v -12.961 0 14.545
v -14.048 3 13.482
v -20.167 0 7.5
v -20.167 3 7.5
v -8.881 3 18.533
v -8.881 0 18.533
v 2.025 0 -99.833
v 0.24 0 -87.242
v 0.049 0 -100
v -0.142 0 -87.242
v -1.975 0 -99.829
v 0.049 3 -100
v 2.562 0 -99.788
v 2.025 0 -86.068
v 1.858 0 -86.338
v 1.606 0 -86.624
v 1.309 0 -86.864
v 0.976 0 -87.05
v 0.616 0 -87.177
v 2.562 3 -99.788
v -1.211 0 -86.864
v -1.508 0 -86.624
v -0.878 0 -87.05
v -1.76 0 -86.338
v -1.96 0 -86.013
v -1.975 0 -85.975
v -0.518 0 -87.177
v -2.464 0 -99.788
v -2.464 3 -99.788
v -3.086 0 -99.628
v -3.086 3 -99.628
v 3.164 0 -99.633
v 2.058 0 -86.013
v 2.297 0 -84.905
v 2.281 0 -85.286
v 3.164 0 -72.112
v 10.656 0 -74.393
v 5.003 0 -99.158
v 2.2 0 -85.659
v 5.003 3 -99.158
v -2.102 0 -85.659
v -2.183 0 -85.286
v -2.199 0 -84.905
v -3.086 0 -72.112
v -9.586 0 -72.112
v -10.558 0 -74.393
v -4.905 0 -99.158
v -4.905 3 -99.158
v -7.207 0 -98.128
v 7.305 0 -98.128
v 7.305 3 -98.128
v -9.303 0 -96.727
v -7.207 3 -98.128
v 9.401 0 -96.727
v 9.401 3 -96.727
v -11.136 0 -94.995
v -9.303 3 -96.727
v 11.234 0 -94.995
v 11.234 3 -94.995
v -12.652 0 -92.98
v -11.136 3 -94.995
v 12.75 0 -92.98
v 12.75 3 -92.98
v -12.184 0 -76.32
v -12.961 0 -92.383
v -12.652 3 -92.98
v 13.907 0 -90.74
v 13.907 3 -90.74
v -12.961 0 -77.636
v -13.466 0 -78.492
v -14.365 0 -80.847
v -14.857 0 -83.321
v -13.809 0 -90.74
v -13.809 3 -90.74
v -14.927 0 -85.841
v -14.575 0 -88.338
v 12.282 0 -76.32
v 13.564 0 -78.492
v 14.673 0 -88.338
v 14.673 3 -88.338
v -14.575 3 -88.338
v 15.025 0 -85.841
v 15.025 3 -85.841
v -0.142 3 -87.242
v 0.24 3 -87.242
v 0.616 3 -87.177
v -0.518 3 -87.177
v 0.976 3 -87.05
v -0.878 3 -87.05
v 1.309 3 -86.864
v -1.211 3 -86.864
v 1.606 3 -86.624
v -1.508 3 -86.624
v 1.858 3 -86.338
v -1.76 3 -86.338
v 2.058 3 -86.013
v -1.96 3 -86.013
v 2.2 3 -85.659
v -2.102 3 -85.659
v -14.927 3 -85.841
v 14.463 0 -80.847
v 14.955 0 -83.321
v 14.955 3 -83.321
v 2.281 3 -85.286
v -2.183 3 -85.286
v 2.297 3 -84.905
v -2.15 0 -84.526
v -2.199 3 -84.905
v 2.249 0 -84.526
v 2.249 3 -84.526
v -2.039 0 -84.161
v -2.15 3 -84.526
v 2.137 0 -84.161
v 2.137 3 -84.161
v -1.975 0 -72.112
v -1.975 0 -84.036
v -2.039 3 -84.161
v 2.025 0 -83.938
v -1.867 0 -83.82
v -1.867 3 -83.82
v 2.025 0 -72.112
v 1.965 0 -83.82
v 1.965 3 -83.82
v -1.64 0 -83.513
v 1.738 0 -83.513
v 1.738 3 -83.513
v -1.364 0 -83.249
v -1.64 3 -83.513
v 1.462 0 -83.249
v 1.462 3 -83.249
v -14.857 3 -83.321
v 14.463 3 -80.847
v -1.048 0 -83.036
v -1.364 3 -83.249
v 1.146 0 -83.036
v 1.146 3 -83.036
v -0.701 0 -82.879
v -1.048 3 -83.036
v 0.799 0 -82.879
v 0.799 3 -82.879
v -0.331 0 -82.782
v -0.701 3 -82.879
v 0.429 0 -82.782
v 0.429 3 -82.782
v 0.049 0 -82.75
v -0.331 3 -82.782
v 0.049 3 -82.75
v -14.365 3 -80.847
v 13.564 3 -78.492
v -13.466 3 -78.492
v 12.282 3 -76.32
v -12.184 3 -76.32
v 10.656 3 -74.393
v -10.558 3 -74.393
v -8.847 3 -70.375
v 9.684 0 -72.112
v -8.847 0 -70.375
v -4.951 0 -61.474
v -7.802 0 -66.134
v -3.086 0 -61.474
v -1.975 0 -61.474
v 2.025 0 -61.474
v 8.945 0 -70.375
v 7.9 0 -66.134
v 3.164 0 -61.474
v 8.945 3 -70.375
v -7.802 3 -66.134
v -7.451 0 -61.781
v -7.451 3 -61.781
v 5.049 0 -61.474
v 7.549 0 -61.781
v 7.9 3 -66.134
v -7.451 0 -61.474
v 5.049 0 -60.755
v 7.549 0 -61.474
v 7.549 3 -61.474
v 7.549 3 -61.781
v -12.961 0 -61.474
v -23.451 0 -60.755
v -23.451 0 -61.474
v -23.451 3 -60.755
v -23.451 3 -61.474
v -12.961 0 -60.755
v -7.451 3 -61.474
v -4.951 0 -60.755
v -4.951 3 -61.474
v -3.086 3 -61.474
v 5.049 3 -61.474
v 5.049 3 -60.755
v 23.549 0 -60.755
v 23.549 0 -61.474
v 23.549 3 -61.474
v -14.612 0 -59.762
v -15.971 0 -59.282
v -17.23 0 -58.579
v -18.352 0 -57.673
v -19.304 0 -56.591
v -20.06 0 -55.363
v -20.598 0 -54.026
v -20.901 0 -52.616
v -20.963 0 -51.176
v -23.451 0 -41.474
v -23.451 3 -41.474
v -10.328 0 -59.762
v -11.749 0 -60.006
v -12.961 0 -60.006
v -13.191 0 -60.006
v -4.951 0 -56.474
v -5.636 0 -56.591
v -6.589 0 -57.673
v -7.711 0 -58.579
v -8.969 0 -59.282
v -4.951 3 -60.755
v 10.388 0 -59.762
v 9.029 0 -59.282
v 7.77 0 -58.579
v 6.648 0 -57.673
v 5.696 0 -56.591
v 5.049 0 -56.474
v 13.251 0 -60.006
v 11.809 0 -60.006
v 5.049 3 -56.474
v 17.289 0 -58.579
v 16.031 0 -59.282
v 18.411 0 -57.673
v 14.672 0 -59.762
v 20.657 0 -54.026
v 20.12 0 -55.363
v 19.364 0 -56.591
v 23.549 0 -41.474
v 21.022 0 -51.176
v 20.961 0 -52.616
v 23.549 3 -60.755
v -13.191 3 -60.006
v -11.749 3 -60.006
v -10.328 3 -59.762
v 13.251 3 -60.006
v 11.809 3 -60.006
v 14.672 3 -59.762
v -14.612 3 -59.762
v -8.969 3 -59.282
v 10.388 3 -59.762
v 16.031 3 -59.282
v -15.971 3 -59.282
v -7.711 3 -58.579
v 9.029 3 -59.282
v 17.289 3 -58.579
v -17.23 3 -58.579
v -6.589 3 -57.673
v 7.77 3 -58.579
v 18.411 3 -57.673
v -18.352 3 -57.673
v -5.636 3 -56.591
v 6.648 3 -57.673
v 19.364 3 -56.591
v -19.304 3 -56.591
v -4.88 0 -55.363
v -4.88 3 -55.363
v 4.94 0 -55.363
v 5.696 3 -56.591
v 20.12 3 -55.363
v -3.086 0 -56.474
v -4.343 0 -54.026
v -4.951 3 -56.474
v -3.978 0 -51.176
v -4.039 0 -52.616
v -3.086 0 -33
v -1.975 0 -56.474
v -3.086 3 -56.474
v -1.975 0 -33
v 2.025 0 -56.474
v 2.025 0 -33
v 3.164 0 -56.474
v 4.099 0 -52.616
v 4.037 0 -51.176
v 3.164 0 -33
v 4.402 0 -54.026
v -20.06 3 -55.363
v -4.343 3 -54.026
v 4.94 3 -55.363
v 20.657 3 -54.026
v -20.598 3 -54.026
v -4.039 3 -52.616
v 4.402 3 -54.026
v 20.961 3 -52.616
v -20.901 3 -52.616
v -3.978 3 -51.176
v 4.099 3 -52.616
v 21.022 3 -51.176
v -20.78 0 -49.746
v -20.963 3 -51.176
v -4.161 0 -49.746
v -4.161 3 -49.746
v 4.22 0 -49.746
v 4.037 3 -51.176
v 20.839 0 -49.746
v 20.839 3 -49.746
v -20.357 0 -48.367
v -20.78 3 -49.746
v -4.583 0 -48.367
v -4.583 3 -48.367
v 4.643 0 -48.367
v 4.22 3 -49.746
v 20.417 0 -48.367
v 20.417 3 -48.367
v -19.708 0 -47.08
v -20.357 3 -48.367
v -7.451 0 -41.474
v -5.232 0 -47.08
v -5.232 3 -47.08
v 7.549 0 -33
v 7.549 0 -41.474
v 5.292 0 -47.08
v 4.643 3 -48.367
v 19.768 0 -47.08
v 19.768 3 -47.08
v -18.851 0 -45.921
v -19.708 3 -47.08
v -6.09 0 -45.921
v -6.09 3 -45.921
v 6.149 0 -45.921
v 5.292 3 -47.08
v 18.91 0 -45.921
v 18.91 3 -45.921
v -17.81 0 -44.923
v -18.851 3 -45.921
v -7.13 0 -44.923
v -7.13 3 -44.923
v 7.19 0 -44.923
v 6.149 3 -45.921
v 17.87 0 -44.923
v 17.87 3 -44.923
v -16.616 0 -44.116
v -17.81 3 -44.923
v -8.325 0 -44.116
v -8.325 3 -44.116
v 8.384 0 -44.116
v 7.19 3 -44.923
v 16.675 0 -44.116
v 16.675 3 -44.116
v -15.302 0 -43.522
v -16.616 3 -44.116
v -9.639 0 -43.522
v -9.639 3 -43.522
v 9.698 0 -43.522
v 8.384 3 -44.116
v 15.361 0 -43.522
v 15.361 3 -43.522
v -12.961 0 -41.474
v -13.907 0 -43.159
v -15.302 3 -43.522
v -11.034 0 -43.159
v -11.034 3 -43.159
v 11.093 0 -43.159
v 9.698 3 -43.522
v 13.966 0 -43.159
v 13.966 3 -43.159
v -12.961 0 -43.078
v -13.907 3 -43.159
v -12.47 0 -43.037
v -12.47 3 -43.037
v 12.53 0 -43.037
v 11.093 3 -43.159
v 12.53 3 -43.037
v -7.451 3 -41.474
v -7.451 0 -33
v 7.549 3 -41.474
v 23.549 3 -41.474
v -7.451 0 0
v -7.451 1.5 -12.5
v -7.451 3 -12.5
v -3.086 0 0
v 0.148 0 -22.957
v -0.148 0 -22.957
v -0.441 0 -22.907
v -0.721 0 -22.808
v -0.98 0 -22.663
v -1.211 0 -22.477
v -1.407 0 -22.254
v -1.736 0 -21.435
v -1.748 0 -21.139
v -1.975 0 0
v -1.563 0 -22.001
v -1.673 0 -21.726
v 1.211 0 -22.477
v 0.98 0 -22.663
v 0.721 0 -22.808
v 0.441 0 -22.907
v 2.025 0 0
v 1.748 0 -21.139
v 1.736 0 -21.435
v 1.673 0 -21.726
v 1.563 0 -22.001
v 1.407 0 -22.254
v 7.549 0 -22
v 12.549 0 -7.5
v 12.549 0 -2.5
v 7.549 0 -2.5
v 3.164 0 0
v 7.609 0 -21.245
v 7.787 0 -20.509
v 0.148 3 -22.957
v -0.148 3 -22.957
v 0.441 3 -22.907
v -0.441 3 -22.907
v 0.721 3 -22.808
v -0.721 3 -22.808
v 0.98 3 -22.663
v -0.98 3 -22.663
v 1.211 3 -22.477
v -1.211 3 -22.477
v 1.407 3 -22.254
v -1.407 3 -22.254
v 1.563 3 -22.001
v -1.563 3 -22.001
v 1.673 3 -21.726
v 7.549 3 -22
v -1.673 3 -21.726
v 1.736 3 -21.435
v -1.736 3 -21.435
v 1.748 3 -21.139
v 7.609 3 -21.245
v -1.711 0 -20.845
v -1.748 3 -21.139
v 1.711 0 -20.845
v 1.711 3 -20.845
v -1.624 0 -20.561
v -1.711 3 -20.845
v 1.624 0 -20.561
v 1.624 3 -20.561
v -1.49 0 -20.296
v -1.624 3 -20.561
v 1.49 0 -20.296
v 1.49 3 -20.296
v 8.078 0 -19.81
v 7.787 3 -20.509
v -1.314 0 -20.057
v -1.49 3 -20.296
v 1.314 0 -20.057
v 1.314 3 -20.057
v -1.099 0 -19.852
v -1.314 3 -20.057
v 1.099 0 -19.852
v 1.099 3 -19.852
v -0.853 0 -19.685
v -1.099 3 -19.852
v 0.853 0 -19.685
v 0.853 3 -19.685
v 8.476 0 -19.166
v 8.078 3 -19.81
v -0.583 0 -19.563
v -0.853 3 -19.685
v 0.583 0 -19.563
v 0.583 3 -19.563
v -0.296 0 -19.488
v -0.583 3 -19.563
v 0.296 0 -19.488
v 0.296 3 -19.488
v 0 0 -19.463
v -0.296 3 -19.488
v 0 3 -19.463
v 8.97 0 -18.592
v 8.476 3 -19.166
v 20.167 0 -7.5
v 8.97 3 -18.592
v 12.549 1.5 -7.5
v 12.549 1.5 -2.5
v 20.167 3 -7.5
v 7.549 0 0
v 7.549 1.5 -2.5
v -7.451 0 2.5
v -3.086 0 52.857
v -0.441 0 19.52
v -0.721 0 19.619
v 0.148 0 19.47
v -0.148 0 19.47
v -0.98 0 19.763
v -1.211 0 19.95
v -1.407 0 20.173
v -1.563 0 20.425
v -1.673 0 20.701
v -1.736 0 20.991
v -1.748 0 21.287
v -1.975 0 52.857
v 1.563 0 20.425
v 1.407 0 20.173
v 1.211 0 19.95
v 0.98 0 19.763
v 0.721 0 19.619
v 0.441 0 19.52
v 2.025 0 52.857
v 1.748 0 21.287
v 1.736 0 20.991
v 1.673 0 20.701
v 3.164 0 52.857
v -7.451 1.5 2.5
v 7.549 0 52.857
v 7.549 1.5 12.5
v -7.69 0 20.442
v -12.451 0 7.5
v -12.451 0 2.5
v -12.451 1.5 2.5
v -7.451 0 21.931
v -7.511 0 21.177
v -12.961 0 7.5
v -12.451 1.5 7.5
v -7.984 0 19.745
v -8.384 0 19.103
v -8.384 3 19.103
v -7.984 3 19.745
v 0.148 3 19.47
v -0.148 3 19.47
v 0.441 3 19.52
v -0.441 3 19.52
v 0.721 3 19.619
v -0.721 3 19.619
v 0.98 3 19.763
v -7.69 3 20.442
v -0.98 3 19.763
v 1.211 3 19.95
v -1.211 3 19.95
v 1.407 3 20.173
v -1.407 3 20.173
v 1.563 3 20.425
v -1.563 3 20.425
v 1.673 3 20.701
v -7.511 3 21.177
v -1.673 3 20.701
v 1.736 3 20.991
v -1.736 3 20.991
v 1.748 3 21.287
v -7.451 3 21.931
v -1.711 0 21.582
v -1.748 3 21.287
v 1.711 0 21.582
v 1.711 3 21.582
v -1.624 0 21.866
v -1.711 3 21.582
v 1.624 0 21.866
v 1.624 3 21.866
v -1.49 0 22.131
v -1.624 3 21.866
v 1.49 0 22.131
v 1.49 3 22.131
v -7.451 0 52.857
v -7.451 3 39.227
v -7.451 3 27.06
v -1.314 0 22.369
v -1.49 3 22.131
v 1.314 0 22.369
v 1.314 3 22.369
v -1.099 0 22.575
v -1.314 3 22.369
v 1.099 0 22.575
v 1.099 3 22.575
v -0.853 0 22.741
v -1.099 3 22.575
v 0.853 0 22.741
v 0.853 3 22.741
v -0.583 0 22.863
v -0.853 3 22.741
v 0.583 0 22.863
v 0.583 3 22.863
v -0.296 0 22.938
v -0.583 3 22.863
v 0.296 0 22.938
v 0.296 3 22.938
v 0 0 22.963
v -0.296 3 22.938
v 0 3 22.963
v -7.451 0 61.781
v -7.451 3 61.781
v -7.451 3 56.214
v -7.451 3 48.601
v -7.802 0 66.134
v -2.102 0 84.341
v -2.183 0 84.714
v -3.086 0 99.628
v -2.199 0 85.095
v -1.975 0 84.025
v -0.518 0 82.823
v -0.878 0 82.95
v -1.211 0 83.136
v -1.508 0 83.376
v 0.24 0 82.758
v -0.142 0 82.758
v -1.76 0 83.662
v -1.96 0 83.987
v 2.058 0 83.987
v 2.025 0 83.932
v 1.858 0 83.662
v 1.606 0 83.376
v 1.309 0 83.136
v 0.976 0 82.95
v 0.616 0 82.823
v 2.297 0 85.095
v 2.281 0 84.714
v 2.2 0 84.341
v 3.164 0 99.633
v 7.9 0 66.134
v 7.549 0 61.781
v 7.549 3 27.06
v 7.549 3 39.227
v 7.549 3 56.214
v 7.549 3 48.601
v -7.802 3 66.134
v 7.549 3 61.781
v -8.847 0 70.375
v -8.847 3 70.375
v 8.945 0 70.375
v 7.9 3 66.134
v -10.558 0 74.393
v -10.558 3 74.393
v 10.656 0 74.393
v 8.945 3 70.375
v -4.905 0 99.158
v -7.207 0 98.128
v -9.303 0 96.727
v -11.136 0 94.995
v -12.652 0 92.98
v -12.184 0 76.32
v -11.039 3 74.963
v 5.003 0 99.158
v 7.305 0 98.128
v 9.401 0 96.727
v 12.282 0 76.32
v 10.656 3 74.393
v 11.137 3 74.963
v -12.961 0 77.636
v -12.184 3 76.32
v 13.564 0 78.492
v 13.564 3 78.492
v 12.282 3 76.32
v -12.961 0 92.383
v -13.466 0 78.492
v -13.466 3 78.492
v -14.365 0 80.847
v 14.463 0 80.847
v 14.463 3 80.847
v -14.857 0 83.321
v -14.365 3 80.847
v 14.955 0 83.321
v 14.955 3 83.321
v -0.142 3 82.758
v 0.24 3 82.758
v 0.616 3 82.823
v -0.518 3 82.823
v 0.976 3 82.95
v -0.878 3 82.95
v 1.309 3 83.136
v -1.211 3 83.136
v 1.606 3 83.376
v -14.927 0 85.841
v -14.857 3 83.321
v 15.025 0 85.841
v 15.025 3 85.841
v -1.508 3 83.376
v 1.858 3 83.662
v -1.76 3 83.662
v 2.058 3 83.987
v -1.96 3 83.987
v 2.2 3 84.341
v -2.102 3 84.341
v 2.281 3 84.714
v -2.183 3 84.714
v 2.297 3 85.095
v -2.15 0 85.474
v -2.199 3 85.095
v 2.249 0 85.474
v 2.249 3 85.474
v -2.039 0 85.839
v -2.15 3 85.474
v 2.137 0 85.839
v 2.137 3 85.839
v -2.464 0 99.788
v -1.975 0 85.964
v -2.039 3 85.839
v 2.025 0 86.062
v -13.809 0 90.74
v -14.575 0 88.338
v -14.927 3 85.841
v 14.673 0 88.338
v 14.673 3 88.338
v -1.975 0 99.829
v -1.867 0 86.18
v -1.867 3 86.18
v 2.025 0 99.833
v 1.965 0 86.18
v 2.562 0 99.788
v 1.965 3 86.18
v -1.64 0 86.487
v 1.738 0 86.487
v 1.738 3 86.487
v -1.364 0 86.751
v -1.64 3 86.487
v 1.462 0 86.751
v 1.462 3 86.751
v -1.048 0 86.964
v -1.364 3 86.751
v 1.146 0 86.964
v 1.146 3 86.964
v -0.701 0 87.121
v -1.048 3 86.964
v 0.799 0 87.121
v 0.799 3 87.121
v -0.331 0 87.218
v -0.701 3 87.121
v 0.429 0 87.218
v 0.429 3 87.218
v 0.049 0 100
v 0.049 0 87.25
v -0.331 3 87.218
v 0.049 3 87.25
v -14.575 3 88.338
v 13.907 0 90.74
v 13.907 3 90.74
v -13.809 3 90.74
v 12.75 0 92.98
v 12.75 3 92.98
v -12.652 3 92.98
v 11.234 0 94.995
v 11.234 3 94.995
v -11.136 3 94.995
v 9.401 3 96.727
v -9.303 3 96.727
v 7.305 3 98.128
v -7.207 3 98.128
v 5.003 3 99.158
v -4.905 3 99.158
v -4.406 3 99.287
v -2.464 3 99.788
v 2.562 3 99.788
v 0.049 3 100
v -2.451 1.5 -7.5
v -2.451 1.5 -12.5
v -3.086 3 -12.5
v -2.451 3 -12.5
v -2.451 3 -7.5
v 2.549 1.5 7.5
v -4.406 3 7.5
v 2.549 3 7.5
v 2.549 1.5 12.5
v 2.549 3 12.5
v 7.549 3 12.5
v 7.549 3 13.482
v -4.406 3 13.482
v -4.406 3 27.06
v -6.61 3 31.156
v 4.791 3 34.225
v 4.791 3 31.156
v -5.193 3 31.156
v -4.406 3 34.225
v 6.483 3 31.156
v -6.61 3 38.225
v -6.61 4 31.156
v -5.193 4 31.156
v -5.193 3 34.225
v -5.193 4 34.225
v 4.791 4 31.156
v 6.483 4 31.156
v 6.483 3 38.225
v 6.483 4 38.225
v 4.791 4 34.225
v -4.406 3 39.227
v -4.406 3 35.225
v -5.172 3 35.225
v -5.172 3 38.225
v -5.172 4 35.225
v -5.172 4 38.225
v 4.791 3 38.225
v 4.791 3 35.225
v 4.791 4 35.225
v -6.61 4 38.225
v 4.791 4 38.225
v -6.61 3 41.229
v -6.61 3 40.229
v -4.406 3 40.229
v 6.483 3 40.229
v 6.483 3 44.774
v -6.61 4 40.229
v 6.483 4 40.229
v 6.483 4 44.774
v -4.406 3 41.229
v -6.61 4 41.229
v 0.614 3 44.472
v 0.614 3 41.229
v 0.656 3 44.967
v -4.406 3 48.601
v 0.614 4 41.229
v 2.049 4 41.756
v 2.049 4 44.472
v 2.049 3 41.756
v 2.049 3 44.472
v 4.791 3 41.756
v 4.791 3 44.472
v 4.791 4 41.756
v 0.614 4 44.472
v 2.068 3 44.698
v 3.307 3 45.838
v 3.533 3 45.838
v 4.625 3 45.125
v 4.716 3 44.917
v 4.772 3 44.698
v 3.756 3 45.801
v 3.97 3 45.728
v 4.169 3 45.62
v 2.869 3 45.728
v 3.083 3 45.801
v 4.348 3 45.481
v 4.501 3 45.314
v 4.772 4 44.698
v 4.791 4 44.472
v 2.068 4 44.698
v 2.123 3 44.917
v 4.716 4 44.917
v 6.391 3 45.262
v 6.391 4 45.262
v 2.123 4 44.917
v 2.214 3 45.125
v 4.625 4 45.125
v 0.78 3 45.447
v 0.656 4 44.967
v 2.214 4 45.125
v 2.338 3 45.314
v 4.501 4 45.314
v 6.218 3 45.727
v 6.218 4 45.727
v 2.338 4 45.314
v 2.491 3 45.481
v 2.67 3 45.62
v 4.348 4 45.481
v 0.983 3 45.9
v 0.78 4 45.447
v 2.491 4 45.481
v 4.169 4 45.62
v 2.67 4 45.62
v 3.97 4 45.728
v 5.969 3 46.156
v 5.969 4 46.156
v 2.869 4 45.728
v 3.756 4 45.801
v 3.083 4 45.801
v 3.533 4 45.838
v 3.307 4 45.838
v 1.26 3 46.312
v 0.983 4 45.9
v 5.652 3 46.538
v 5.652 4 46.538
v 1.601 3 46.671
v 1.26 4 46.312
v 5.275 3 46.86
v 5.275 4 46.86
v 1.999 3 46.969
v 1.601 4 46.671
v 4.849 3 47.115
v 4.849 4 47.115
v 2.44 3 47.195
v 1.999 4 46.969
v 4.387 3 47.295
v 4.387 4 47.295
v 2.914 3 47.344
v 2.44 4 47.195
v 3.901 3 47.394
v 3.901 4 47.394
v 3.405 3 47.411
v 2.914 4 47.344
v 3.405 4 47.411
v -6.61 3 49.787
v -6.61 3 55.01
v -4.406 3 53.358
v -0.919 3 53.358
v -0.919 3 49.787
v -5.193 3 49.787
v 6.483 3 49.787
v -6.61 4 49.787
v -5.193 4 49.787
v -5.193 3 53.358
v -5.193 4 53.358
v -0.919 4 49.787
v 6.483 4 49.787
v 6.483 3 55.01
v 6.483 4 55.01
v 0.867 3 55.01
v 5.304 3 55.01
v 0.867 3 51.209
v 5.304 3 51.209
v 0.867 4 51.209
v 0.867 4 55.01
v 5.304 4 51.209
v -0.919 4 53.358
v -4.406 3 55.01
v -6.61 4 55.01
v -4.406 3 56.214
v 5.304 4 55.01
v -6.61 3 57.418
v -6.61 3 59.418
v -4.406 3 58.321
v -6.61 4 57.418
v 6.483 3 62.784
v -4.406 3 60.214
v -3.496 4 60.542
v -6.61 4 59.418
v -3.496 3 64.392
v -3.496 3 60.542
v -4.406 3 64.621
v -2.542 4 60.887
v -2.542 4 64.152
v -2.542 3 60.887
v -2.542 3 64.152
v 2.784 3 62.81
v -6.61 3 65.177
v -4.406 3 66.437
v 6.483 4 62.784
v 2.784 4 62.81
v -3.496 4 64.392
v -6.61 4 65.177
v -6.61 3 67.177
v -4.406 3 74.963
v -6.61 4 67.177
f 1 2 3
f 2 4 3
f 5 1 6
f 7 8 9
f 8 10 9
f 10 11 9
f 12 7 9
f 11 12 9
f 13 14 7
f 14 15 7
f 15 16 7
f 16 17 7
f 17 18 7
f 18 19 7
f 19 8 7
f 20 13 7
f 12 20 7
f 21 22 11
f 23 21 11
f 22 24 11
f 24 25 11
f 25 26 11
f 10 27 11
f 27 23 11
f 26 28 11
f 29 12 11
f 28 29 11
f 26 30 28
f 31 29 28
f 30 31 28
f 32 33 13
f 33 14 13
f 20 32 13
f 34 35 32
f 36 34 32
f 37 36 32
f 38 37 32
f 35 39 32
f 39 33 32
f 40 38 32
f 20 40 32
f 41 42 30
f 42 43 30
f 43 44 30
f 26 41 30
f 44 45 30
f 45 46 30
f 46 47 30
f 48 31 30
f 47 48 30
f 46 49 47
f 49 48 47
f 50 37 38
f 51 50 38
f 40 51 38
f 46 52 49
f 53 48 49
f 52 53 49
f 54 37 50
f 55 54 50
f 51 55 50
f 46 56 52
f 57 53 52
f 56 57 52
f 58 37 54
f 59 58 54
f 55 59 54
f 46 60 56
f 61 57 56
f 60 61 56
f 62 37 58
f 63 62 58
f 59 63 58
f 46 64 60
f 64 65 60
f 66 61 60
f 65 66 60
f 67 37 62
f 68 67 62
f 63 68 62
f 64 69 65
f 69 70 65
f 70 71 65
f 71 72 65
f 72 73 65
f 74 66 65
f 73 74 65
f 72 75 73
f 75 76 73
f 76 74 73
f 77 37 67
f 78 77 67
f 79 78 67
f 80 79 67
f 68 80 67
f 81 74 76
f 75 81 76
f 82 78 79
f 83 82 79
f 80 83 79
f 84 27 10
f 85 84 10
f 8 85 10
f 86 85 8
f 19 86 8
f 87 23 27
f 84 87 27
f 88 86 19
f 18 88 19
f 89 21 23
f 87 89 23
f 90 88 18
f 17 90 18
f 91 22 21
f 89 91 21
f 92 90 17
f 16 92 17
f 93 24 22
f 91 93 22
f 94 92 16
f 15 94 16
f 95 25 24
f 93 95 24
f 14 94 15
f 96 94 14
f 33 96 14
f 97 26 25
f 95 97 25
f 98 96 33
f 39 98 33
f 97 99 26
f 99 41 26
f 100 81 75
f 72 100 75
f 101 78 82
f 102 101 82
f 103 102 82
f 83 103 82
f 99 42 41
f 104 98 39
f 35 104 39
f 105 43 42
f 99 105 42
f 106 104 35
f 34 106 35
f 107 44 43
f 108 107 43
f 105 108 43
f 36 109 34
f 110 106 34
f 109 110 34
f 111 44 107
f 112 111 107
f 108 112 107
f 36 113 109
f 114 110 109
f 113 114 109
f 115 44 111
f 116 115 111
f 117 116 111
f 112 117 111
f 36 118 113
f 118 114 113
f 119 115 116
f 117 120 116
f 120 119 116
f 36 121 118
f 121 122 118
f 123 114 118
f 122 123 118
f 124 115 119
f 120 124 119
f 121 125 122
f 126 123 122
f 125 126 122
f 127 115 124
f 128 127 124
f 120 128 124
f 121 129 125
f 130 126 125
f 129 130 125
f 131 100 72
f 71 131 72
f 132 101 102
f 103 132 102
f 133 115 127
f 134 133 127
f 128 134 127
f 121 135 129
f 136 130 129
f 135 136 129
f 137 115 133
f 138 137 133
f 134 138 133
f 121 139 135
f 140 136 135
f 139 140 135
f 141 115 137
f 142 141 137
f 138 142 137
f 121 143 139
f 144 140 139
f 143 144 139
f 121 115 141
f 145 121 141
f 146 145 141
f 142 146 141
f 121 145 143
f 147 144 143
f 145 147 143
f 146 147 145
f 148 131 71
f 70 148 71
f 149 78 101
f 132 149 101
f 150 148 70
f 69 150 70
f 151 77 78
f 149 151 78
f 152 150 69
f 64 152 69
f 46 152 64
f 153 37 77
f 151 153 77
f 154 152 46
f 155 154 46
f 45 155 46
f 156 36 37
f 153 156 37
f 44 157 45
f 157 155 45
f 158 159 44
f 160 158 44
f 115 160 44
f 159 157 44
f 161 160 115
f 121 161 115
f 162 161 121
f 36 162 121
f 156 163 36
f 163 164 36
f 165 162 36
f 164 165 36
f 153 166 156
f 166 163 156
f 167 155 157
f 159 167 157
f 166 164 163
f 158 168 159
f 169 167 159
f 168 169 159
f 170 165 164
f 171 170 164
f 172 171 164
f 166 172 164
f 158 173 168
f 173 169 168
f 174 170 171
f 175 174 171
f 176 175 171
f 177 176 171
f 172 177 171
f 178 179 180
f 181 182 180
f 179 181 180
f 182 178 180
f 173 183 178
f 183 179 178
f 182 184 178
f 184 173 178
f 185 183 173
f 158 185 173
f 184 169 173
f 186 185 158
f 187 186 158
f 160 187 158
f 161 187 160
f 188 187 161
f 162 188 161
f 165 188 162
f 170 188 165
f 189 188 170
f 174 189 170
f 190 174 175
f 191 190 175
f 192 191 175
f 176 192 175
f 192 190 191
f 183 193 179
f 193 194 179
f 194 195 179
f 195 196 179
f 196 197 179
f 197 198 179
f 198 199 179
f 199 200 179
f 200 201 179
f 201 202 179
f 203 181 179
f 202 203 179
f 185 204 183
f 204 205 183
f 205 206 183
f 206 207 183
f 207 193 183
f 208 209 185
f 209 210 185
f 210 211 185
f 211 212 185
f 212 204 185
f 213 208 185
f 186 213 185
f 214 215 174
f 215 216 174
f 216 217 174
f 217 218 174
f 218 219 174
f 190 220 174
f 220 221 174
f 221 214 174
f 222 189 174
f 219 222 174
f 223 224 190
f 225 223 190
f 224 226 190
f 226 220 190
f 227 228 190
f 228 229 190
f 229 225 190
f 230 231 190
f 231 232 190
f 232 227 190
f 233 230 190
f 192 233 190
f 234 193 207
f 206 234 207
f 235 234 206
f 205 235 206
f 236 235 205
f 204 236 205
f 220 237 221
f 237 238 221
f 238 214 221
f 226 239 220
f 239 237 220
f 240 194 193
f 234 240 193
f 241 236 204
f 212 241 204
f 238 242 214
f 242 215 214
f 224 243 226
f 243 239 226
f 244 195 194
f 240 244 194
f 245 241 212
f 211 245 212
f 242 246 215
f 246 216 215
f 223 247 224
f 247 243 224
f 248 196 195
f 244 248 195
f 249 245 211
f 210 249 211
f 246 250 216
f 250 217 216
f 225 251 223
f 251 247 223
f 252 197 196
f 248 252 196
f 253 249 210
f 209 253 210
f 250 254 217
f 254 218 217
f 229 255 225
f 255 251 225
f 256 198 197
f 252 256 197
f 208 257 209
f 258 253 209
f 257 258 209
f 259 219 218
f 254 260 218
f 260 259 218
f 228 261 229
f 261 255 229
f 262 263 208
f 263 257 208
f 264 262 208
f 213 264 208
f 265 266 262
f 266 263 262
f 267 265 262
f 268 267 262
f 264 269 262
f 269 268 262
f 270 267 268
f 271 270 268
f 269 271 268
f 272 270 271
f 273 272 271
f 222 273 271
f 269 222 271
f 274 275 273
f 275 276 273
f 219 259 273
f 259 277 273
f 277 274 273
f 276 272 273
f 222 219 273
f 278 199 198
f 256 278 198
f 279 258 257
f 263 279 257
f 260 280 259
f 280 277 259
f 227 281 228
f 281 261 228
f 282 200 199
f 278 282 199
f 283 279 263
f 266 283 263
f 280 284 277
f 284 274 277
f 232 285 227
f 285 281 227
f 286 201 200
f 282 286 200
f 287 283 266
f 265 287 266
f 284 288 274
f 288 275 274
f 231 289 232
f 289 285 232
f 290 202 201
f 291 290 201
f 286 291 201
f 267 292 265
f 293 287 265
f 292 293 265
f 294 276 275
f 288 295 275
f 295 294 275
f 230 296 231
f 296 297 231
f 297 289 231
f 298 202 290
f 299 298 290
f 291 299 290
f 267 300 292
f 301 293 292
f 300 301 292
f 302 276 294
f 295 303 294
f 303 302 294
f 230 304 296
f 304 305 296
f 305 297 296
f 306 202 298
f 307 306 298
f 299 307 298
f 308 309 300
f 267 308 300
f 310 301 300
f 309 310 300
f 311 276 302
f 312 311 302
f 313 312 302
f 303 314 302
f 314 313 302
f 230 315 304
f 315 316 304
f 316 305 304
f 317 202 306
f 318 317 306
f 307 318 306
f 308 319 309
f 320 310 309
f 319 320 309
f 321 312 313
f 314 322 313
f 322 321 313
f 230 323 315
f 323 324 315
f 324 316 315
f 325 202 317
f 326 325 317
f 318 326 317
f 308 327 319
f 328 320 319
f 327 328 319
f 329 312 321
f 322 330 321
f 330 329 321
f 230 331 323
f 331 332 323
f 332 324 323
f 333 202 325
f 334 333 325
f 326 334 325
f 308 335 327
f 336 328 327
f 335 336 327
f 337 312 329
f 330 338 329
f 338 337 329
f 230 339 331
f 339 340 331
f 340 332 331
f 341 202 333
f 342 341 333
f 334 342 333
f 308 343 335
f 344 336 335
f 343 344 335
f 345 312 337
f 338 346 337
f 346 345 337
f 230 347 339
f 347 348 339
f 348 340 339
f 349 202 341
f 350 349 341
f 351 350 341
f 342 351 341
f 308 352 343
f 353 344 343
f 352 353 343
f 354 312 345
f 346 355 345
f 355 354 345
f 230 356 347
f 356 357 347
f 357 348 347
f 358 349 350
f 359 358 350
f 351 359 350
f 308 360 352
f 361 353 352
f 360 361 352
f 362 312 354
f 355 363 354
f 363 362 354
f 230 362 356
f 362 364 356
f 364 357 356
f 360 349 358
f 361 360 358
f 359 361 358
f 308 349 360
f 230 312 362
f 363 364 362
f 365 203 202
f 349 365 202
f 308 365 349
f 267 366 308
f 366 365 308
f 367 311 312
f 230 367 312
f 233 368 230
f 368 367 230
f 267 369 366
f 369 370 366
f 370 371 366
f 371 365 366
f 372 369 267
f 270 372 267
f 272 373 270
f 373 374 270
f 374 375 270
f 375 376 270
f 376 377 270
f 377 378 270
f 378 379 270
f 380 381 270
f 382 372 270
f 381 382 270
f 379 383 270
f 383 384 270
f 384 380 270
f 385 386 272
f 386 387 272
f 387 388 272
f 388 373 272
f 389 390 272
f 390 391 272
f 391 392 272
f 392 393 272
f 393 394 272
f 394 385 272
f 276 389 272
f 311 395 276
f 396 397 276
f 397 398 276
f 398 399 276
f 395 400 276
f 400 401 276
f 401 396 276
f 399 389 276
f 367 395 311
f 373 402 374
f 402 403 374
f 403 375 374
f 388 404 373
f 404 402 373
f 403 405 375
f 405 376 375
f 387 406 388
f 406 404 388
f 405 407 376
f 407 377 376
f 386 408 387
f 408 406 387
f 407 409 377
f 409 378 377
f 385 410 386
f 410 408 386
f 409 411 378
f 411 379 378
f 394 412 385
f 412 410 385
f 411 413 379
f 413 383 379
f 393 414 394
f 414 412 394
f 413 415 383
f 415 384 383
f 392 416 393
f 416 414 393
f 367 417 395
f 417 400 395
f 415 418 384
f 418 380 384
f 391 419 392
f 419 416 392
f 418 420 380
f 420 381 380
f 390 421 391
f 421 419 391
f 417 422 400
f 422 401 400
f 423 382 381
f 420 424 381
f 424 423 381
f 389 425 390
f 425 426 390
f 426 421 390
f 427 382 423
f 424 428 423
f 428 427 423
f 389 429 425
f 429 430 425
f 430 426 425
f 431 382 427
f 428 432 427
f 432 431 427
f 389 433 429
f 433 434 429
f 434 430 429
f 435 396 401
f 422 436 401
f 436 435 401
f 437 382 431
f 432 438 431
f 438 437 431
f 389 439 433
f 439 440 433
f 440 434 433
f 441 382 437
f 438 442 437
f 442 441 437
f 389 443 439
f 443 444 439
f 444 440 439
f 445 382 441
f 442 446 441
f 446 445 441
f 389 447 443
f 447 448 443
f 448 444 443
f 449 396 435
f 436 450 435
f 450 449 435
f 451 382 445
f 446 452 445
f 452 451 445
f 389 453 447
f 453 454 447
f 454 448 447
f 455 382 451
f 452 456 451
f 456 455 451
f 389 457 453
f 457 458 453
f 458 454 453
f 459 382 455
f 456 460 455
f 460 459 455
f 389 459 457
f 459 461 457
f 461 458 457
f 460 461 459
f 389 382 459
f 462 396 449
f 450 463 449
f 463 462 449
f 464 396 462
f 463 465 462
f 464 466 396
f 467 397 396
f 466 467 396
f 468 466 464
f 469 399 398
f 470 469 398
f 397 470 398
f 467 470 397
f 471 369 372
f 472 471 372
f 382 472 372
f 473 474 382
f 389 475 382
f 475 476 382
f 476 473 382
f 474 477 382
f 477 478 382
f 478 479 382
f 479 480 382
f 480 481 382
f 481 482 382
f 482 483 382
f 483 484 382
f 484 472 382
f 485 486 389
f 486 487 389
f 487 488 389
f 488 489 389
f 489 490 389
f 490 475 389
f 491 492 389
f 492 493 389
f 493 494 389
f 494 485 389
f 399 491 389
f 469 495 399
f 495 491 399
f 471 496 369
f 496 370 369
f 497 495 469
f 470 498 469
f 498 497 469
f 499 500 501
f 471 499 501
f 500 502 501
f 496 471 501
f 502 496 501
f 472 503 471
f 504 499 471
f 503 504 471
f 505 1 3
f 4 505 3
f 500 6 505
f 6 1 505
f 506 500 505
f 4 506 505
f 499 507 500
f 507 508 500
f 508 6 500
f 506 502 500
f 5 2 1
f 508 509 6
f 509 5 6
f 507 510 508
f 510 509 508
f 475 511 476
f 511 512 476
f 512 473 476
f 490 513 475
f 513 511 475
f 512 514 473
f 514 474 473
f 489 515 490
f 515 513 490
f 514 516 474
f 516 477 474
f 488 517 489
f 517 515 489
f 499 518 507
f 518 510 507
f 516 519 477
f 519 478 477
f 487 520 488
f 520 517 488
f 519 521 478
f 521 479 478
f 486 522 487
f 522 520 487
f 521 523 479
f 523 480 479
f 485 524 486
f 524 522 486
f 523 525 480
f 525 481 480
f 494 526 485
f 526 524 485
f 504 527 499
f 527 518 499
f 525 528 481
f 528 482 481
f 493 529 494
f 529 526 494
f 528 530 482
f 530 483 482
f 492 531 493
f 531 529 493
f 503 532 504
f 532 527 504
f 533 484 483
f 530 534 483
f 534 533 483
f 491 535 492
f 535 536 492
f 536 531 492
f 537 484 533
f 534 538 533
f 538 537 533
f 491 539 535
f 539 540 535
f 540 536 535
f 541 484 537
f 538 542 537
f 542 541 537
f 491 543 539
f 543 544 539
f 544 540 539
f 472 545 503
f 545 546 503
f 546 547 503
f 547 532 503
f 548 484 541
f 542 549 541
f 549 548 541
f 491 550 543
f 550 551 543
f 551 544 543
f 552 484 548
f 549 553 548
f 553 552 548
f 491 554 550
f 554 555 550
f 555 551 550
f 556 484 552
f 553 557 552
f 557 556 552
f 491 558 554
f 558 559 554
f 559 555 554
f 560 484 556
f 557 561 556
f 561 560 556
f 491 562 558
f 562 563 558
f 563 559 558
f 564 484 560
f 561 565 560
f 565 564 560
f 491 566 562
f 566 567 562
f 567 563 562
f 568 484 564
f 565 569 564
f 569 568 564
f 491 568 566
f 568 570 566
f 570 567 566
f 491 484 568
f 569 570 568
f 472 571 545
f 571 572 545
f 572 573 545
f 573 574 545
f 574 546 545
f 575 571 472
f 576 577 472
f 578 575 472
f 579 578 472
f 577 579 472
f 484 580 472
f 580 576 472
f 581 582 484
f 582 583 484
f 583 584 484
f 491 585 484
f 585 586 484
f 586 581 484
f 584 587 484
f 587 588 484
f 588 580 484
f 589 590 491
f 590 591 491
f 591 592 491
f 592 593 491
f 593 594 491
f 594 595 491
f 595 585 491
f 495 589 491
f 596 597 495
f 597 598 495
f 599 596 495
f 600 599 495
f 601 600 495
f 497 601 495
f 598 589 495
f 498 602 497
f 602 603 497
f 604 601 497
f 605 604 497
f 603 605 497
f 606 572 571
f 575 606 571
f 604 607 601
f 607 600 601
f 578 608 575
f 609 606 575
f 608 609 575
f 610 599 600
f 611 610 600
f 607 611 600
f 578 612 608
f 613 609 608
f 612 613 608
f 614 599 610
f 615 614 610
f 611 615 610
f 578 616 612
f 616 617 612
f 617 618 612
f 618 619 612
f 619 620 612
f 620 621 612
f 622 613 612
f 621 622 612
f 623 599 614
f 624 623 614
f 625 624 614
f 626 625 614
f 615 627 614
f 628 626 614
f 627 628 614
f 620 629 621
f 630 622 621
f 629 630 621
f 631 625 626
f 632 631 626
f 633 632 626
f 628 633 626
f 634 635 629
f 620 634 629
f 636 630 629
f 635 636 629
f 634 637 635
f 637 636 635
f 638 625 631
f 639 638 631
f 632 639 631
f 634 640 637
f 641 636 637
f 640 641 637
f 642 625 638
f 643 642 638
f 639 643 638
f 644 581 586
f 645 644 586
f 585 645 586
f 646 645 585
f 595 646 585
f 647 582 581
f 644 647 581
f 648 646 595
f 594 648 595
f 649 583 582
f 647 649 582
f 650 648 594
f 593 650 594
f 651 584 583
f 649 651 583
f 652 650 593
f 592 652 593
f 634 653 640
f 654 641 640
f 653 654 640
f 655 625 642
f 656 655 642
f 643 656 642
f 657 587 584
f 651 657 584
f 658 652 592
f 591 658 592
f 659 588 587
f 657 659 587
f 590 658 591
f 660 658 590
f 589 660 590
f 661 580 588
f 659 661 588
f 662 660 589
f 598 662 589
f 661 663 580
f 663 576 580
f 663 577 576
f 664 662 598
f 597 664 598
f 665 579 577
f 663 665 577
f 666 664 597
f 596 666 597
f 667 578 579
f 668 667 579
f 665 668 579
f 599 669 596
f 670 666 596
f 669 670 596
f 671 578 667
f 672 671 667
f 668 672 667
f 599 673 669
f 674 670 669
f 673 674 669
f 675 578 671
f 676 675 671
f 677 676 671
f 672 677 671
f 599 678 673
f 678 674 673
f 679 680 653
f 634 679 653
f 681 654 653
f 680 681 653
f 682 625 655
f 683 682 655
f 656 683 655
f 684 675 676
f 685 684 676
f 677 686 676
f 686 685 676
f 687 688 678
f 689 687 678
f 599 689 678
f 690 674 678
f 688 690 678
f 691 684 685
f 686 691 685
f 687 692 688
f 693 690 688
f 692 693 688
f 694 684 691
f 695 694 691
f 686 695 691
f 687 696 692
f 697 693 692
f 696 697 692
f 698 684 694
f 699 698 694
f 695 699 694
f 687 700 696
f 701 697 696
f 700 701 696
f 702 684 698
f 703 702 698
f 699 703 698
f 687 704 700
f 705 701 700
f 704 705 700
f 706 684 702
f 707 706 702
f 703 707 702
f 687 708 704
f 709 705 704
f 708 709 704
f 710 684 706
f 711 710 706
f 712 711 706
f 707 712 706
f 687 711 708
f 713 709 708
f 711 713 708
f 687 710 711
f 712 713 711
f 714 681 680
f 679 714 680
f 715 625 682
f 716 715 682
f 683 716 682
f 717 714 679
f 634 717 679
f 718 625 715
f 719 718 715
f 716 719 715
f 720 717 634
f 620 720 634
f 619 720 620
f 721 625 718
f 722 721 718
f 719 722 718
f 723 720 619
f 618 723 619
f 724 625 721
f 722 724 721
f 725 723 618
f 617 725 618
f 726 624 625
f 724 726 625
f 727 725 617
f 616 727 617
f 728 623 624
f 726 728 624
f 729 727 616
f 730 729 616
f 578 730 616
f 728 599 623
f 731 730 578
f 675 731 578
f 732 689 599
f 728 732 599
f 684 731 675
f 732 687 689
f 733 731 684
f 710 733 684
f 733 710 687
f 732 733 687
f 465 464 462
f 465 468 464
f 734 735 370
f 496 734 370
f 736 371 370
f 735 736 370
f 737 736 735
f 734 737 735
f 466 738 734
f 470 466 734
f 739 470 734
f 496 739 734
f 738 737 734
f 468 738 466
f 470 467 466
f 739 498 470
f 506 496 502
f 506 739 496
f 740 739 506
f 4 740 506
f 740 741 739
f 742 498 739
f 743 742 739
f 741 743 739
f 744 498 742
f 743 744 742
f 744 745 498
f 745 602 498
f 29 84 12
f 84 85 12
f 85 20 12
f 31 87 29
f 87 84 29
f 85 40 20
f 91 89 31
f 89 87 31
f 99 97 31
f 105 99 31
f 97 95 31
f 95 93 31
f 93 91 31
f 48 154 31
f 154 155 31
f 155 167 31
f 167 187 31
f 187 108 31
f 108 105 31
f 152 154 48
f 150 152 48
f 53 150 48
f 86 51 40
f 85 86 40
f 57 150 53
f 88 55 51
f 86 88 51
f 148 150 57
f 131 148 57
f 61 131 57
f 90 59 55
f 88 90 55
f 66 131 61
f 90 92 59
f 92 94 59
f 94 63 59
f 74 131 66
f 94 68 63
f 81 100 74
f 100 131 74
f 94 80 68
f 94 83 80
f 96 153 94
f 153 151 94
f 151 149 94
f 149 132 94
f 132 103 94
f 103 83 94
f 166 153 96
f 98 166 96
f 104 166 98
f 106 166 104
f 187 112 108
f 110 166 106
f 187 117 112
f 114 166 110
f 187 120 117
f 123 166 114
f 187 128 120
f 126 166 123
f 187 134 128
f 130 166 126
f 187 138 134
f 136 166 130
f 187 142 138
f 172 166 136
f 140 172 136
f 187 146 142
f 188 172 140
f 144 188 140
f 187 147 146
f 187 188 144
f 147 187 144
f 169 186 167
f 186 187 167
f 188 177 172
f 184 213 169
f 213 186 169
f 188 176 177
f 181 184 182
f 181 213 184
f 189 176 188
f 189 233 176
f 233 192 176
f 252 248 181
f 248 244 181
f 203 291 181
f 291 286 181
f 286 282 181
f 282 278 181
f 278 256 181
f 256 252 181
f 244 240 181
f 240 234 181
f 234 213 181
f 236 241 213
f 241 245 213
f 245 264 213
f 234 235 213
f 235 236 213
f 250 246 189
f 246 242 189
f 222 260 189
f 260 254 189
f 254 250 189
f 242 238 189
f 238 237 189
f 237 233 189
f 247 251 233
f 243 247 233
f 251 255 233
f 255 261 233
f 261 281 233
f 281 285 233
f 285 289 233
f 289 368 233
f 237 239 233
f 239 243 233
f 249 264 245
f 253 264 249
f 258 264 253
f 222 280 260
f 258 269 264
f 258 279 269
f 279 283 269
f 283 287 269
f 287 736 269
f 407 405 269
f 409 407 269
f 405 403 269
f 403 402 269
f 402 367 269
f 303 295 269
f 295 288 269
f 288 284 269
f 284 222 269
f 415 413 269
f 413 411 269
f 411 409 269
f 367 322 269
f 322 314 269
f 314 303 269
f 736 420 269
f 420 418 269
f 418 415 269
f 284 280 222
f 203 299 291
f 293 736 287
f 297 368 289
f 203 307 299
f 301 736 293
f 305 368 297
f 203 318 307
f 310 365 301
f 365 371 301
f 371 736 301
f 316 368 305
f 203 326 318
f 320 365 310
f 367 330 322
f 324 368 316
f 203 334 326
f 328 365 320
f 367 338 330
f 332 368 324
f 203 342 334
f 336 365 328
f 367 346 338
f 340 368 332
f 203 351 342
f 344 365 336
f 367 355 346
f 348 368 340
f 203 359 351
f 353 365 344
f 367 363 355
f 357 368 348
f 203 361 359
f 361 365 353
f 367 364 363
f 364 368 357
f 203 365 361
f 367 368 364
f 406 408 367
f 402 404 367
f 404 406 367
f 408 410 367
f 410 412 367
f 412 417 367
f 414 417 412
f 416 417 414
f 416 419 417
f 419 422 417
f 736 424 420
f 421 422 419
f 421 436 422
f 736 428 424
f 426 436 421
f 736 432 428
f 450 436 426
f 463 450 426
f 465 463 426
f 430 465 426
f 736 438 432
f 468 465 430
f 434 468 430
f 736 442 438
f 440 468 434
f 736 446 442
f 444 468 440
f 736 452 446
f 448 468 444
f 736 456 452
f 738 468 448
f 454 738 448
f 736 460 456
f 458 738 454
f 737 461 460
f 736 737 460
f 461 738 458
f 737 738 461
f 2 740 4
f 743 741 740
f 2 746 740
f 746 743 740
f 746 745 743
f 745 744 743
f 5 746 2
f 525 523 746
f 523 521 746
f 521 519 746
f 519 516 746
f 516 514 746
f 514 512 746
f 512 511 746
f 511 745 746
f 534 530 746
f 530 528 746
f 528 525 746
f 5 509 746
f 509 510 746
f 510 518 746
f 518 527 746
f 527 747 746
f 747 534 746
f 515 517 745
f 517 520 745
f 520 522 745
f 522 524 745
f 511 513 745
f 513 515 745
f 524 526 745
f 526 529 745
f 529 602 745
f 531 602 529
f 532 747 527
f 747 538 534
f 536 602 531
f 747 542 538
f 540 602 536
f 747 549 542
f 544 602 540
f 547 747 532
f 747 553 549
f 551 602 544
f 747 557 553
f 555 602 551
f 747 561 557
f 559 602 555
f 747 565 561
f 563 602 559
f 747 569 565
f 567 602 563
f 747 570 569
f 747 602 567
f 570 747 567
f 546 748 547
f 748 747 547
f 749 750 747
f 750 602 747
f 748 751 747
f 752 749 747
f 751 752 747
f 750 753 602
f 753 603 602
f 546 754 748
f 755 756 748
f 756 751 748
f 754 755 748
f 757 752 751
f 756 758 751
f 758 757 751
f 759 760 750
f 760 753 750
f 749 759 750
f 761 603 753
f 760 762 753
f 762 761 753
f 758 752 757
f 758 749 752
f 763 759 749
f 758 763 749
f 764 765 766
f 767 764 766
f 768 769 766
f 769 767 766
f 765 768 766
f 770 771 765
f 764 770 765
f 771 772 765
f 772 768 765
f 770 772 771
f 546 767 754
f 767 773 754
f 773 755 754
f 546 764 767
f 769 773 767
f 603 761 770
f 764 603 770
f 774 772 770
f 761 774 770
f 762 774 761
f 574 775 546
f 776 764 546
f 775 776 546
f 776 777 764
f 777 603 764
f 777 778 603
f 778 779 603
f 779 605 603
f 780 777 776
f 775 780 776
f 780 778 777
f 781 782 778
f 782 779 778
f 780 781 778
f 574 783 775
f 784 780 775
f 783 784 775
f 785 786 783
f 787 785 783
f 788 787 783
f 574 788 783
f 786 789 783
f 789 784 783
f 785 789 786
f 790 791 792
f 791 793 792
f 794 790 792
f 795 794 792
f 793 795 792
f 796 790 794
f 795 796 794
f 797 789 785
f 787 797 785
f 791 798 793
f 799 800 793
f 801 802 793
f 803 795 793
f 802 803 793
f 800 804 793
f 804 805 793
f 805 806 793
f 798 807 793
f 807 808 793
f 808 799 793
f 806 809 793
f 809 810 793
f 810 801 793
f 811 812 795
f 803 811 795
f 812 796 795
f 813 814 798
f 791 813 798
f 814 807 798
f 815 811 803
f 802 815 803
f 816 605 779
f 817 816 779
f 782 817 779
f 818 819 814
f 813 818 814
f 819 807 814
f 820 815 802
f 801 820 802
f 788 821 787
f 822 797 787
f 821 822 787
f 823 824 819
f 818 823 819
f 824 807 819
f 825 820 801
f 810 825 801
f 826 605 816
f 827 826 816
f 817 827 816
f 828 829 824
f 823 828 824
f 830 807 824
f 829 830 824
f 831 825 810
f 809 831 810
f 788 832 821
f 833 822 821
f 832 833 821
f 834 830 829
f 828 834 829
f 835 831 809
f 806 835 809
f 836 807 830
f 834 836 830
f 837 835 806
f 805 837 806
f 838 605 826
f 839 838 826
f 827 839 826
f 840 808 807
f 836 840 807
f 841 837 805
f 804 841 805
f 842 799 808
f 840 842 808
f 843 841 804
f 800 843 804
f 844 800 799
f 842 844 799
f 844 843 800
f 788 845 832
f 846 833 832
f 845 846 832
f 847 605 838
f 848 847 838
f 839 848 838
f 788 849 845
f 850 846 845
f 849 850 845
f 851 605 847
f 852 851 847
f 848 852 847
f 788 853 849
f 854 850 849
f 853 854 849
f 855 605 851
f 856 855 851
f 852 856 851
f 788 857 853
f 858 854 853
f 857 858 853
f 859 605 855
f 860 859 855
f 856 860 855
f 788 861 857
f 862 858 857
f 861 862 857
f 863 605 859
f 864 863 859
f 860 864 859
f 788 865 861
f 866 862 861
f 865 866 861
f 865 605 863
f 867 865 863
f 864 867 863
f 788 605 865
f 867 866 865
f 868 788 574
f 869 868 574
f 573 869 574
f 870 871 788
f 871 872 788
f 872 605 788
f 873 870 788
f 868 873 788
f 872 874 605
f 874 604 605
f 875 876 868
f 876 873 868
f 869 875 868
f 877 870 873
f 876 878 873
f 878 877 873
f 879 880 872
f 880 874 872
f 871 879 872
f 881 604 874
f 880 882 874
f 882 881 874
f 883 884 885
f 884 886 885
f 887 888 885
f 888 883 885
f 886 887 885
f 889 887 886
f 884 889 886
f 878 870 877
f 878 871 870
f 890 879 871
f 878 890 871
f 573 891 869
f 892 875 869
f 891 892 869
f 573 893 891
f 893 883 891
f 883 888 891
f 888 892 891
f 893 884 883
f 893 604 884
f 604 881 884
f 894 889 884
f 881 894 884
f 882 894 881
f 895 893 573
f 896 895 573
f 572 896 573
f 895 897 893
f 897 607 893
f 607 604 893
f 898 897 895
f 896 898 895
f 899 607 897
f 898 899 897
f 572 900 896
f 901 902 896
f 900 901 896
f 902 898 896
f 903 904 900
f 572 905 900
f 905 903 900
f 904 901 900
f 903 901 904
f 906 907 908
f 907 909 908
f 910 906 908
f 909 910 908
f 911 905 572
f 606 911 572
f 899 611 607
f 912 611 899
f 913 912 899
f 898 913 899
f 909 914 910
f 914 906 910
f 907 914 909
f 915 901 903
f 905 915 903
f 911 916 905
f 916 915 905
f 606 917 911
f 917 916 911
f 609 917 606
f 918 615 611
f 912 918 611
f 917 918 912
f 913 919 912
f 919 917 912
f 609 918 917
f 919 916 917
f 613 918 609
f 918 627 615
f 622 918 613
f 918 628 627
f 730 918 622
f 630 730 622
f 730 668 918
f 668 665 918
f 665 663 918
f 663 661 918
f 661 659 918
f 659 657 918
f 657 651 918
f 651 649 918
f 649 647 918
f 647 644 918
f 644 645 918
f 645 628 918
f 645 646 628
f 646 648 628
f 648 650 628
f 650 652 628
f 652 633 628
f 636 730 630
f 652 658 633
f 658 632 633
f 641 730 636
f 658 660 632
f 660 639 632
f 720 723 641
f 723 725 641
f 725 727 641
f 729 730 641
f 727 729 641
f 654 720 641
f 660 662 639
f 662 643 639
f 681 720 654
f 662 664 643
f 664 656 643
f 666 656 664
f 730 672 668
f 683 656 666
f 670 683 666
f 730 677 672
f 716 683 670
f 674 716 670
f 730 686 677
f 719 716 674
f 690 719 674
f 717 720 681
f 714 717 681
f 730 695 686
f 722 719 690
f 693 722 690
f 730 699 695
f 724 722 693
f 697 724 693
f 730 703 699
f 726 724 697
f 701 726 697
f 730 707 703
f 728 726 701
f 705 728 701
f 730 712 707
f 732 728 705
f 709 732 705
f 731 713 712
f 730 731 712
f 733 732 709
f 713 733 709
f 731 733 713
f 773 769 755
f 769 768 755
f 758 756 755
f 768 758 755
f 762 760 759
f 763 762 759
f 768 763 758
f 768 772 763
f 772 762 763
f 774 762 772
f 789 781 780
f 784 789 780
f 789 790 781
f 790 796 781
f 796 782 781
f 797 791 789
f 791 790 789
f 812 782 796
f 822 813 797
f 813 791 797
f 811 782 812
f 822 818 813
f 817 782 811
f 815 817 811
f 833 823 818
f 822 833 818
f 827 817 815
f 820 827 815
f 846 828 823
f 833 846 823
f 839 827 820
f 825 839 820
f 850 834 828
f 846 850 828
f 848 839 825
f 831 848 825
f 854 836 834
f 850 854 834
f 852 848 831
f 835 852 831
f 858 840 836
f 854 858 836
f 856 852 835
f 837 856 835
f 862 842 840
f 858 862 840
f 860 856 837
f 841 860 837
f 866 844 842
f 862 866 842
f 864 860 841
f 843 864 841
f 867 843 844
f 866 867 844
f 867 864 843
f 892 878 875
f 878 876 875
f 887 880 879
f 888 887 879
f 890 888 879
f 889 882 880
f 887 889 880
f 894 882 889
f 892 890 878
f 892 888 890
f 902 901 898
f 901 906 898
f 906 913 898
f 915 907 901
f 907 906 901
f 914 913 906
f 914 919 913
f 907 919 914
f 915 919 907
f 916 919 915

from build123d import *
from build123d.topology import SkipClean

# Parameters (mm, degrees)
SKETCH1_R            = 2
SKETCH1_R_2          = 1.5
BOSS_EXTRUDE2_DEPTH  = 3
SKETCH3_W            = 15.09800494
SKETCH3_H            = 15
CUT_EXTRUDE9_DEPTH   = 1.5
BOSS_EXTRUDE7_DEPTH  = 1.5
BOSS_EXTRUDE9_DEPTH  = 3
SKETCH11_W           = 5
SKETCH11_H           = 5
CUT_EXTRUDE16_DEPTH  = 1.5
SKETCH12_W           = 5
SKETCH12_H           = 5
BOSS_EXTRUDE16_DEPTH = 1.5
BOSS_EXTRUDE17_START = -3
SKETCH15_R           = 1.5
BOSS_EXTRUDE17_DEPTH = 3
SKETCH16_R           = 1.5
CUT_EXTRUDE17_DEPTH  = 103.05738215
BOSS_EXTRUDE23_DEPTH = 1
BOSS_EXTRUDE27_DEPTH = 3
SKETCH27_W           = 5
SKETCH27_H           = 5
CUT_EXTRUDE20_DEPTH  = 3
SKETCH28_R           = 2.25
CUT_EXTRUDE22_DEPTH  = 103.779175528
SKETCH29_R           = 1.75
CUT_EXTRUDE23_DEPTH  = 10


with BuildPart() as part:
    # Sketch1 → Boss-Extrude2 (new body)
    with BuildSketch(Plane(origin=(0, 0, 0), x_dir=(1, 0, 0), z_dir=(0, 1, 0))):
        with BuildLine():
            Line((-7.45099753, -61.780902979), (-7.45099753, 61.780902979))
            ThreePointArc((-7.45099753, 61.780902979), (-8.239083338, 68.275631842), (-10.557599248, 74.393398282))
            ThreePointArc((-10.557599248, 74.393398282), (0.04900247, 100), (10.655604188, 74.393398282))
            ThreePointArc((10.655604188, 74.393398282), (8.337088278, 68.275631842), (7.54900247, 61.780902979))
            Line((7.54900247, 61.780902979), (7.54900247, -61.780902979))
            ThreePointArc((7.54900247, -61.780902979), (8.337088278, -68.275631842), (10.655604188, -74.393398282))
            ThreePointArc((10.655604188, -74.393398282), (0.04900247, -100), (-10.557599248, -74.393398282))
            ThreePointArc((-10.557599248, -74.393398282), (-8.239083338, -68.275631842), (-7.45099753, -61.780902979))
        make_face()
        with Locations(Location((0.04900247, 85, 0), (0, 0, 270))):
            Circle(SKETCH1_R, mode=Mode.SUBTRACT)
        with Locations(Location((0, 20, 0), (0, 0, 270))):
            Circle(SKETCH1_R_2, mode=Mode.SUBTRACT)
        with Locations(Location((0.04900247, -85, 0), (0, 0, 90))):
            Circle(SKETCH1_R, mode=Mode.SUBTRACT)
        with Locations(Location((0, -20, 0), (0, 0, 90))):
            Circle(SKETCH1_R_2, mode=Mode.SUBTRACT)
    extrude(amount=BOSS_EXTRUDE2_DEPTH)

    # Sketch3 → Cut-Extrude9 (cut)
    with BuildSketch(Plane(origin=(0, 3, 0), x_dir=(1, 0, 0), z_dir=(0, 1, 0))):
        Rectangle(SKETCH3_W, SKETCH3_H)
    extrude(amount=-CUT_EXTRUDE9_DEPTH, mode=Mode.SUBTRACT)

    # Sketch4 → Boss-Extrude7 (add, symmetric)
    with BuildSketch(Plane(origin=(0, 1.5, 0), x_dir=(1, 0, 0), z_dir=(0, 1, 0))):
        Polygon((-7.380219176, -20), (-20.167033775, -7.5), (-7.45099753, -7.5), align=None)
        Polygon((7.54900247, 20), (20.167033775, 7.5), (7.54900247, 7.5), align=None)
    extrude(amount=BOSS_EXTRUDE7_DEPTH, both=True)

    # Sketch7 → Boss-Extrude9 (add)
    with BuildSketch(Plane(origin=(0, 3, 0), x_dir=(1, 0, 0), z_dir=(0, 1, 0))):
        with BuildLine():
            Line((-7.45099753, -19.930809239), (-8.881159755, -18.532726263))
            ThreePointArc((-8.881159755, -18.532726263), (-7.823107204, -20.087420247), (-7.45099753, -21.930809239))
            Line((-7.45099753, -21.930809239), (-7.45099753, -19.930809239))
        make_face()
        with BuildLine():
            Line((7.54900247, 20), (7.54900247, 22))
            ThreePointArc((7.54900247, 22), (7.918440774, 20.154044275), (8.969845829, 18.592447462))
            Line((8.969845829, 18.592447462), (7.54900247, 20))
        make_face()
    extrude(amount=-BOSS_EXTRUDE9_DEPTH)

    # Sketch11 → Cut-Extrude16 (cut)
    with BuildSketch(Plane(origin=(0, 3, 0), x_dir=(1, 0, 0), z_dir=(0, 1, 0))):
        with Locations((-4.95099753, 10)):
            Rectangle(SKETCH11_W, SKETCH11_H)
        with Locations((5.04900247, -10)):
            Rectangle(SKETCH11_W, SKETCH11_H)
    extrude(amount=-CUT_EXTRUDE16_DEPTH, mode=Mode.SUBTRACT)

    # Sketch12 → Boss-Extrude16 (add)
    with BuildSketch(Plane(origin=(0, 1.5, 0), x_dir=(1, 0, 0), z_dir=(0, 1, 0))):
        with Locations((-9.95099753, -5)):
            Rectangle(SKETCH12_W, SKETCH12_H)
        with Locations((10.04900247, 5)):
            Rectangle(SKETCH12_W, SKETCH12_H)
    extrude(amount=-BOSS_EXTRUDE16_DEPTH)

    # Sketch15 → Boss-Extrude17 (add)
    with BuildSketch(Plane(origin=(0, 3, 0), x_dir=(1, 0, 0), z_dir=(0, 1, 0)).offset(BOSS_EXTRUDE17_START)):
        with Locations((0, -20)):
            Circle(SKETCH15_R)
        with Locations((0, 20)):
            Circle(SKETCH15_R)
    extrude(amount=BOSS_EXTRUDE17_DEPTH)

    # Sketch16 → Cut-Extrude17 (cut, through all)
    with BuildSketch(Plane(origin=(0, 3, 0), x_dir=(1, 0, 0), z_dir=(0, 1, 0))):
        with Locations(Location((0, -21.2132, 0), (0, 0, 270))):
            Circle(SKETCH16_R)
        with Locations(Location((0, 21.2132, 0), (0, 0, 270))):
            Circle(SKETCH16_R)
    extrude(amount=-CUT_EXTRUDE17_DEPTH, mode=Mode.SUBTRACT)

    # Sketch23 → Boss-Extrude23 (add)
    # profile 1 of 4: a face of its own
    with BuildSketch(Plane(origin=(0, 3, 0), x_dir=(1, 0, 0), z_dir=(0, 1, 0))):
        Polygon((6.48304168, -31.15626819), (4.790546757, -31.15626819), (4.790546757, -34.224668666), (-5.193247077, -34.224668666), (-5.193247077, -31.15626819), (-6.610245289, -31.15626819), (-6.610245289, -38.224668666), (-5.172046476, -38.224668666), (-5.172046476, -35.224668666), (4.790546757, -35.224668666), (4.790546757, -38.224668666), (6.48304168, -38.224668666), align=None)
    # profile 2 of 4: a face of its own
    with BuildSketch(Plane(origin=(0, 3, 0), x_dir=(1, 0, 0), z_dir=(0, 1, 0))):
        with BuildLine():
            Line((6.48304168, -44.774262485), (6.48304168, -40.2287097))
            Line((6.48304168, -40.2287097), (0.613982134, -40.2287097))
            Line((0.613982134, -40.2287097), (-6.610245289, -40.2287097))
            Line((-6.610245289, -40.2287097), (-6.610245289, -41.2287097))
            Line((-6.610245289, -41.2287097), (0.613982134, -41.2287097))
            Line((0.613982134, -41.2287097), (0.613982134, -44.472302349))
            ThreePointArc((0.613982134, -44.472302349), (3.405099993, -47.410713479), (6.48304168, -44.774262485))
        make_face()
        with BuildLine():
            Line((2.048928068, -41.75590566), (4.790546757, -41.75590566))
            Line((4.790546757, -41.75590566), (4.790546757, -44.472302349))
            ThreePointArc((4.790546757, -44.472302349), (3.419737413, -45.843111694), (2.048928068, -44.472302349))
            Line((2.048928068, -44.472302349), (2.048928068, -41.75590566))
        make_face(mode=Mode.SUBTRACT)
    # profile 3 of 4: a face of its own
    with BuildSketch(Plane(origin=(0, 3, 0), x_dir=(1, 0, 0), z_dir=(0, 1, 0))):
        Polygon((-5.193247077, -49.786953251), (-6.610245289, -49.786953251), (-6.610245289, -55.010121906), (0.867065228, -55.010121906), (0.867065228, -51.209269606), (5.304000993, -51.209269606), (5.304000993, -55.010121906), (6.48304168, -55.010121906), (6.48304168, -54.185588488), (6.48304168, -49.786953251), (5.304000993, -49.786953251), (3.675053454, -49.786953251), (-0.919010014, -49.786953251), (-0.919010014, -53.357760144), (-5.193247077, -53.357760144), align=None)
    # profile 4 of 4: a face of its own
    with BuildSketch(Plane(origin=(0, 3, 0), x_dir=(1, 0, 0), z_dir=(0, 1, 0))):
        Polygon((6.48304168, -62.784084555), (-6.610245289, -57.417876571), (-6.610245289, -59.417876571), (-3.495842422, -60.542428347), (-3.495842422, -64.392173355), (-6.610245289, -65.17688806), (-6.610245289, -67.17688806), align=None)
        Polygon((-2.542129921, -64.151872965), (-2.542129921, -60.886795833), (2.783876522, -62.809915692), align=None, mode=Mode.SUBTRACT)
    extrude(amount=BOSS_EXTRUDE23_DEPTH)

    # Sketch18 → Boss-Extrude27 (add)
    with BuildSketch(Plane(origin=(0, 3, 0), x_dir=(1, 0, 0), z_dir=(0, 1, 0))):
        with BuildLine():
            Line((7.54900247, 44.648778007), (7.54900247, 41.473572639))
            Line((7.54900247, 41.473572639), (22.562436554, 41.473572639))
            Line((22.562436554, 41.473572639), (23.549074765, 41.473572639))
            Line((23.549074765, 41.473572639), (23.549074765, 51.473572639))
            Line((23.549074765, 51.473572639), (23.549074765, 61.473572639))
            Line((23.549074765, 61.473572639), (22.562436554, 61.473572639))
            Line((22.562436554, 61.473572639), (7.54900247, 61.473572639))
            Line((7.54900247, 61.473572639), (7.54900247, 58.424486687))
            ThreePointArc((7.54900247, 58.424486687), (16.397137863, 59.105847196), (21.029711515, 51.536632347))
            ThreePointArc((21.029711515, 51.536632347), (16.397137863, 43.967417497), (7.54900247, 44.648778007))
        make_face()
        with BuildLine():
            Line((-22.437563446, 41.473572639), (-7.45099753, 41.473572639))
            Line((-7.45099753, 41.473572639), (-7.45099753, 44.676843358))
            ThreePointArc((-7.45099753, 44.676843358), (-20.970289814, 51.536632347), (-7.45099753, 58.396421335))
            Line((-7.45099753, 58.396421335), (-7.45099753, 61.473572639))
            Line((-7.45099753, 61.473572639), (-22.437563446, 61.473572639))
            Line((-22.437563446, 61.473572639), (-23.450925235, 61.473572639))
            Line((-23.450925235, 61.473572639), (-23.450925235, 41.473572639))
            Line((-23.450925235, 41.473572639), (-22.437563446, 41.473572639))
        make_face()
    extrude(amount=-BOSS_EXTRUDE27_DEPTH)

    # Sketch27 → Cut-Extrude20 (cut)
    with SkipClean():  # the faces are left unmerged after this step: merging them gives an invalid solid
        with BuildSketch(Plane(origin=(0, 3, 0), x_dir=(1, 0, 0), z_dir=(0, 1, 0))):
            with BuildLine():
                ThreePointArc((7.54900247, 44.648778007), (16.397137863, 43.967417497), (21.029711515, 51.536632347))
                ThreePointArc((21.029711515, 51.536632347), (16.397137863, 59.105847196), (7.54900247, 58.424486687))
                Line((7.54900247, 58.424486687), (7.54900247, 44.648778007))
            make_face()
            with BuildLine():
                Line((7.54900247, 44.648778007), (7.54900247, 58.424486687))
                ThreePointArc((7.54900247, 58.424486687), (4.029711515, 51.536632347), (7.54900247, 44.648778007))
            make_face()
            with BuildLine():
                ThreePointArc((-7.45099753, 44.676843358), (-4.890250751, 47.690464411), (-3.970289814, 51.536632347))
                ThreePointArc((-3.970289814, 51.536632347), (-4.890250751, 55.382800283), (-7.45099753, 58.396421335))
                Line((-7.45099753, 58.396421335), (-7.45099753, 44.676843358))
            make_face()
            with BuildLine():
                Line((-7.45099753, 44.676843358), (-7.45099753, 58.396421335))
                ThreePointArc((-7.45099753, 58.396421335), (-20.970289814, 51.536632347), (-7.45099753, 44.676843358))
            make_face()
            with Locations((2.54900247, 58.973572639)):
                Rectangle(SKETCH27_W, SKETCH27_H)
            with Locations((-2.45099753, 58.973572639)):
                Rectangle(SKETCH27_W, SKETCH27_H)
        extrude(amount=-CUT_EXTRUDE20_DEPTH, mode=Mode.SUBTRACT)

    # Sketch28 → Cut-Extrude22 (cut, through all)
    with SkipClean():  # the faces are left unmerged after this step: merging them gives an invalid solid
        with BuildSketch(Plane(origin=(0, 3, 0), x_dir=(1, 0, 0), z_dir=(0, 1, 0))):
            with Locations(Location((0.04900247, 85, 0), (0, 0, 270))):
                Circle(SKETCH28_R)
            with Locations(Location((0.04900247, -85, 0), (0, 0, 270))):
                Circle(SKETCH28_R)
        extrude(amount=-CUT_EXTRUDE22_DEPTH, mode=Mode.SUBTRACT)

    # Sketch29 → Cut-Extrude23 (cut)
    with SkipClean():  # the faces are left unmerged after this step: merging them gives an invalid solid
        with BuildSketch(Plane(origin=(0, 3, 0), x_dir=(1, 0, 0), z_dir=(0, 1, 0))):
            with Locations(Location((0, 21.2132, 0), (0, 0, 270))):
                Circle(SKETCH29_R)
            with Locations(Location((0, -21.2132, 0), (0, 0, 270))):
                Circle(SKETCH29_R)
        extrude(amount=-CUT_EXTRUDE23_DEPTH, mode=Mode.SUBTRACT)


solid = part.part
